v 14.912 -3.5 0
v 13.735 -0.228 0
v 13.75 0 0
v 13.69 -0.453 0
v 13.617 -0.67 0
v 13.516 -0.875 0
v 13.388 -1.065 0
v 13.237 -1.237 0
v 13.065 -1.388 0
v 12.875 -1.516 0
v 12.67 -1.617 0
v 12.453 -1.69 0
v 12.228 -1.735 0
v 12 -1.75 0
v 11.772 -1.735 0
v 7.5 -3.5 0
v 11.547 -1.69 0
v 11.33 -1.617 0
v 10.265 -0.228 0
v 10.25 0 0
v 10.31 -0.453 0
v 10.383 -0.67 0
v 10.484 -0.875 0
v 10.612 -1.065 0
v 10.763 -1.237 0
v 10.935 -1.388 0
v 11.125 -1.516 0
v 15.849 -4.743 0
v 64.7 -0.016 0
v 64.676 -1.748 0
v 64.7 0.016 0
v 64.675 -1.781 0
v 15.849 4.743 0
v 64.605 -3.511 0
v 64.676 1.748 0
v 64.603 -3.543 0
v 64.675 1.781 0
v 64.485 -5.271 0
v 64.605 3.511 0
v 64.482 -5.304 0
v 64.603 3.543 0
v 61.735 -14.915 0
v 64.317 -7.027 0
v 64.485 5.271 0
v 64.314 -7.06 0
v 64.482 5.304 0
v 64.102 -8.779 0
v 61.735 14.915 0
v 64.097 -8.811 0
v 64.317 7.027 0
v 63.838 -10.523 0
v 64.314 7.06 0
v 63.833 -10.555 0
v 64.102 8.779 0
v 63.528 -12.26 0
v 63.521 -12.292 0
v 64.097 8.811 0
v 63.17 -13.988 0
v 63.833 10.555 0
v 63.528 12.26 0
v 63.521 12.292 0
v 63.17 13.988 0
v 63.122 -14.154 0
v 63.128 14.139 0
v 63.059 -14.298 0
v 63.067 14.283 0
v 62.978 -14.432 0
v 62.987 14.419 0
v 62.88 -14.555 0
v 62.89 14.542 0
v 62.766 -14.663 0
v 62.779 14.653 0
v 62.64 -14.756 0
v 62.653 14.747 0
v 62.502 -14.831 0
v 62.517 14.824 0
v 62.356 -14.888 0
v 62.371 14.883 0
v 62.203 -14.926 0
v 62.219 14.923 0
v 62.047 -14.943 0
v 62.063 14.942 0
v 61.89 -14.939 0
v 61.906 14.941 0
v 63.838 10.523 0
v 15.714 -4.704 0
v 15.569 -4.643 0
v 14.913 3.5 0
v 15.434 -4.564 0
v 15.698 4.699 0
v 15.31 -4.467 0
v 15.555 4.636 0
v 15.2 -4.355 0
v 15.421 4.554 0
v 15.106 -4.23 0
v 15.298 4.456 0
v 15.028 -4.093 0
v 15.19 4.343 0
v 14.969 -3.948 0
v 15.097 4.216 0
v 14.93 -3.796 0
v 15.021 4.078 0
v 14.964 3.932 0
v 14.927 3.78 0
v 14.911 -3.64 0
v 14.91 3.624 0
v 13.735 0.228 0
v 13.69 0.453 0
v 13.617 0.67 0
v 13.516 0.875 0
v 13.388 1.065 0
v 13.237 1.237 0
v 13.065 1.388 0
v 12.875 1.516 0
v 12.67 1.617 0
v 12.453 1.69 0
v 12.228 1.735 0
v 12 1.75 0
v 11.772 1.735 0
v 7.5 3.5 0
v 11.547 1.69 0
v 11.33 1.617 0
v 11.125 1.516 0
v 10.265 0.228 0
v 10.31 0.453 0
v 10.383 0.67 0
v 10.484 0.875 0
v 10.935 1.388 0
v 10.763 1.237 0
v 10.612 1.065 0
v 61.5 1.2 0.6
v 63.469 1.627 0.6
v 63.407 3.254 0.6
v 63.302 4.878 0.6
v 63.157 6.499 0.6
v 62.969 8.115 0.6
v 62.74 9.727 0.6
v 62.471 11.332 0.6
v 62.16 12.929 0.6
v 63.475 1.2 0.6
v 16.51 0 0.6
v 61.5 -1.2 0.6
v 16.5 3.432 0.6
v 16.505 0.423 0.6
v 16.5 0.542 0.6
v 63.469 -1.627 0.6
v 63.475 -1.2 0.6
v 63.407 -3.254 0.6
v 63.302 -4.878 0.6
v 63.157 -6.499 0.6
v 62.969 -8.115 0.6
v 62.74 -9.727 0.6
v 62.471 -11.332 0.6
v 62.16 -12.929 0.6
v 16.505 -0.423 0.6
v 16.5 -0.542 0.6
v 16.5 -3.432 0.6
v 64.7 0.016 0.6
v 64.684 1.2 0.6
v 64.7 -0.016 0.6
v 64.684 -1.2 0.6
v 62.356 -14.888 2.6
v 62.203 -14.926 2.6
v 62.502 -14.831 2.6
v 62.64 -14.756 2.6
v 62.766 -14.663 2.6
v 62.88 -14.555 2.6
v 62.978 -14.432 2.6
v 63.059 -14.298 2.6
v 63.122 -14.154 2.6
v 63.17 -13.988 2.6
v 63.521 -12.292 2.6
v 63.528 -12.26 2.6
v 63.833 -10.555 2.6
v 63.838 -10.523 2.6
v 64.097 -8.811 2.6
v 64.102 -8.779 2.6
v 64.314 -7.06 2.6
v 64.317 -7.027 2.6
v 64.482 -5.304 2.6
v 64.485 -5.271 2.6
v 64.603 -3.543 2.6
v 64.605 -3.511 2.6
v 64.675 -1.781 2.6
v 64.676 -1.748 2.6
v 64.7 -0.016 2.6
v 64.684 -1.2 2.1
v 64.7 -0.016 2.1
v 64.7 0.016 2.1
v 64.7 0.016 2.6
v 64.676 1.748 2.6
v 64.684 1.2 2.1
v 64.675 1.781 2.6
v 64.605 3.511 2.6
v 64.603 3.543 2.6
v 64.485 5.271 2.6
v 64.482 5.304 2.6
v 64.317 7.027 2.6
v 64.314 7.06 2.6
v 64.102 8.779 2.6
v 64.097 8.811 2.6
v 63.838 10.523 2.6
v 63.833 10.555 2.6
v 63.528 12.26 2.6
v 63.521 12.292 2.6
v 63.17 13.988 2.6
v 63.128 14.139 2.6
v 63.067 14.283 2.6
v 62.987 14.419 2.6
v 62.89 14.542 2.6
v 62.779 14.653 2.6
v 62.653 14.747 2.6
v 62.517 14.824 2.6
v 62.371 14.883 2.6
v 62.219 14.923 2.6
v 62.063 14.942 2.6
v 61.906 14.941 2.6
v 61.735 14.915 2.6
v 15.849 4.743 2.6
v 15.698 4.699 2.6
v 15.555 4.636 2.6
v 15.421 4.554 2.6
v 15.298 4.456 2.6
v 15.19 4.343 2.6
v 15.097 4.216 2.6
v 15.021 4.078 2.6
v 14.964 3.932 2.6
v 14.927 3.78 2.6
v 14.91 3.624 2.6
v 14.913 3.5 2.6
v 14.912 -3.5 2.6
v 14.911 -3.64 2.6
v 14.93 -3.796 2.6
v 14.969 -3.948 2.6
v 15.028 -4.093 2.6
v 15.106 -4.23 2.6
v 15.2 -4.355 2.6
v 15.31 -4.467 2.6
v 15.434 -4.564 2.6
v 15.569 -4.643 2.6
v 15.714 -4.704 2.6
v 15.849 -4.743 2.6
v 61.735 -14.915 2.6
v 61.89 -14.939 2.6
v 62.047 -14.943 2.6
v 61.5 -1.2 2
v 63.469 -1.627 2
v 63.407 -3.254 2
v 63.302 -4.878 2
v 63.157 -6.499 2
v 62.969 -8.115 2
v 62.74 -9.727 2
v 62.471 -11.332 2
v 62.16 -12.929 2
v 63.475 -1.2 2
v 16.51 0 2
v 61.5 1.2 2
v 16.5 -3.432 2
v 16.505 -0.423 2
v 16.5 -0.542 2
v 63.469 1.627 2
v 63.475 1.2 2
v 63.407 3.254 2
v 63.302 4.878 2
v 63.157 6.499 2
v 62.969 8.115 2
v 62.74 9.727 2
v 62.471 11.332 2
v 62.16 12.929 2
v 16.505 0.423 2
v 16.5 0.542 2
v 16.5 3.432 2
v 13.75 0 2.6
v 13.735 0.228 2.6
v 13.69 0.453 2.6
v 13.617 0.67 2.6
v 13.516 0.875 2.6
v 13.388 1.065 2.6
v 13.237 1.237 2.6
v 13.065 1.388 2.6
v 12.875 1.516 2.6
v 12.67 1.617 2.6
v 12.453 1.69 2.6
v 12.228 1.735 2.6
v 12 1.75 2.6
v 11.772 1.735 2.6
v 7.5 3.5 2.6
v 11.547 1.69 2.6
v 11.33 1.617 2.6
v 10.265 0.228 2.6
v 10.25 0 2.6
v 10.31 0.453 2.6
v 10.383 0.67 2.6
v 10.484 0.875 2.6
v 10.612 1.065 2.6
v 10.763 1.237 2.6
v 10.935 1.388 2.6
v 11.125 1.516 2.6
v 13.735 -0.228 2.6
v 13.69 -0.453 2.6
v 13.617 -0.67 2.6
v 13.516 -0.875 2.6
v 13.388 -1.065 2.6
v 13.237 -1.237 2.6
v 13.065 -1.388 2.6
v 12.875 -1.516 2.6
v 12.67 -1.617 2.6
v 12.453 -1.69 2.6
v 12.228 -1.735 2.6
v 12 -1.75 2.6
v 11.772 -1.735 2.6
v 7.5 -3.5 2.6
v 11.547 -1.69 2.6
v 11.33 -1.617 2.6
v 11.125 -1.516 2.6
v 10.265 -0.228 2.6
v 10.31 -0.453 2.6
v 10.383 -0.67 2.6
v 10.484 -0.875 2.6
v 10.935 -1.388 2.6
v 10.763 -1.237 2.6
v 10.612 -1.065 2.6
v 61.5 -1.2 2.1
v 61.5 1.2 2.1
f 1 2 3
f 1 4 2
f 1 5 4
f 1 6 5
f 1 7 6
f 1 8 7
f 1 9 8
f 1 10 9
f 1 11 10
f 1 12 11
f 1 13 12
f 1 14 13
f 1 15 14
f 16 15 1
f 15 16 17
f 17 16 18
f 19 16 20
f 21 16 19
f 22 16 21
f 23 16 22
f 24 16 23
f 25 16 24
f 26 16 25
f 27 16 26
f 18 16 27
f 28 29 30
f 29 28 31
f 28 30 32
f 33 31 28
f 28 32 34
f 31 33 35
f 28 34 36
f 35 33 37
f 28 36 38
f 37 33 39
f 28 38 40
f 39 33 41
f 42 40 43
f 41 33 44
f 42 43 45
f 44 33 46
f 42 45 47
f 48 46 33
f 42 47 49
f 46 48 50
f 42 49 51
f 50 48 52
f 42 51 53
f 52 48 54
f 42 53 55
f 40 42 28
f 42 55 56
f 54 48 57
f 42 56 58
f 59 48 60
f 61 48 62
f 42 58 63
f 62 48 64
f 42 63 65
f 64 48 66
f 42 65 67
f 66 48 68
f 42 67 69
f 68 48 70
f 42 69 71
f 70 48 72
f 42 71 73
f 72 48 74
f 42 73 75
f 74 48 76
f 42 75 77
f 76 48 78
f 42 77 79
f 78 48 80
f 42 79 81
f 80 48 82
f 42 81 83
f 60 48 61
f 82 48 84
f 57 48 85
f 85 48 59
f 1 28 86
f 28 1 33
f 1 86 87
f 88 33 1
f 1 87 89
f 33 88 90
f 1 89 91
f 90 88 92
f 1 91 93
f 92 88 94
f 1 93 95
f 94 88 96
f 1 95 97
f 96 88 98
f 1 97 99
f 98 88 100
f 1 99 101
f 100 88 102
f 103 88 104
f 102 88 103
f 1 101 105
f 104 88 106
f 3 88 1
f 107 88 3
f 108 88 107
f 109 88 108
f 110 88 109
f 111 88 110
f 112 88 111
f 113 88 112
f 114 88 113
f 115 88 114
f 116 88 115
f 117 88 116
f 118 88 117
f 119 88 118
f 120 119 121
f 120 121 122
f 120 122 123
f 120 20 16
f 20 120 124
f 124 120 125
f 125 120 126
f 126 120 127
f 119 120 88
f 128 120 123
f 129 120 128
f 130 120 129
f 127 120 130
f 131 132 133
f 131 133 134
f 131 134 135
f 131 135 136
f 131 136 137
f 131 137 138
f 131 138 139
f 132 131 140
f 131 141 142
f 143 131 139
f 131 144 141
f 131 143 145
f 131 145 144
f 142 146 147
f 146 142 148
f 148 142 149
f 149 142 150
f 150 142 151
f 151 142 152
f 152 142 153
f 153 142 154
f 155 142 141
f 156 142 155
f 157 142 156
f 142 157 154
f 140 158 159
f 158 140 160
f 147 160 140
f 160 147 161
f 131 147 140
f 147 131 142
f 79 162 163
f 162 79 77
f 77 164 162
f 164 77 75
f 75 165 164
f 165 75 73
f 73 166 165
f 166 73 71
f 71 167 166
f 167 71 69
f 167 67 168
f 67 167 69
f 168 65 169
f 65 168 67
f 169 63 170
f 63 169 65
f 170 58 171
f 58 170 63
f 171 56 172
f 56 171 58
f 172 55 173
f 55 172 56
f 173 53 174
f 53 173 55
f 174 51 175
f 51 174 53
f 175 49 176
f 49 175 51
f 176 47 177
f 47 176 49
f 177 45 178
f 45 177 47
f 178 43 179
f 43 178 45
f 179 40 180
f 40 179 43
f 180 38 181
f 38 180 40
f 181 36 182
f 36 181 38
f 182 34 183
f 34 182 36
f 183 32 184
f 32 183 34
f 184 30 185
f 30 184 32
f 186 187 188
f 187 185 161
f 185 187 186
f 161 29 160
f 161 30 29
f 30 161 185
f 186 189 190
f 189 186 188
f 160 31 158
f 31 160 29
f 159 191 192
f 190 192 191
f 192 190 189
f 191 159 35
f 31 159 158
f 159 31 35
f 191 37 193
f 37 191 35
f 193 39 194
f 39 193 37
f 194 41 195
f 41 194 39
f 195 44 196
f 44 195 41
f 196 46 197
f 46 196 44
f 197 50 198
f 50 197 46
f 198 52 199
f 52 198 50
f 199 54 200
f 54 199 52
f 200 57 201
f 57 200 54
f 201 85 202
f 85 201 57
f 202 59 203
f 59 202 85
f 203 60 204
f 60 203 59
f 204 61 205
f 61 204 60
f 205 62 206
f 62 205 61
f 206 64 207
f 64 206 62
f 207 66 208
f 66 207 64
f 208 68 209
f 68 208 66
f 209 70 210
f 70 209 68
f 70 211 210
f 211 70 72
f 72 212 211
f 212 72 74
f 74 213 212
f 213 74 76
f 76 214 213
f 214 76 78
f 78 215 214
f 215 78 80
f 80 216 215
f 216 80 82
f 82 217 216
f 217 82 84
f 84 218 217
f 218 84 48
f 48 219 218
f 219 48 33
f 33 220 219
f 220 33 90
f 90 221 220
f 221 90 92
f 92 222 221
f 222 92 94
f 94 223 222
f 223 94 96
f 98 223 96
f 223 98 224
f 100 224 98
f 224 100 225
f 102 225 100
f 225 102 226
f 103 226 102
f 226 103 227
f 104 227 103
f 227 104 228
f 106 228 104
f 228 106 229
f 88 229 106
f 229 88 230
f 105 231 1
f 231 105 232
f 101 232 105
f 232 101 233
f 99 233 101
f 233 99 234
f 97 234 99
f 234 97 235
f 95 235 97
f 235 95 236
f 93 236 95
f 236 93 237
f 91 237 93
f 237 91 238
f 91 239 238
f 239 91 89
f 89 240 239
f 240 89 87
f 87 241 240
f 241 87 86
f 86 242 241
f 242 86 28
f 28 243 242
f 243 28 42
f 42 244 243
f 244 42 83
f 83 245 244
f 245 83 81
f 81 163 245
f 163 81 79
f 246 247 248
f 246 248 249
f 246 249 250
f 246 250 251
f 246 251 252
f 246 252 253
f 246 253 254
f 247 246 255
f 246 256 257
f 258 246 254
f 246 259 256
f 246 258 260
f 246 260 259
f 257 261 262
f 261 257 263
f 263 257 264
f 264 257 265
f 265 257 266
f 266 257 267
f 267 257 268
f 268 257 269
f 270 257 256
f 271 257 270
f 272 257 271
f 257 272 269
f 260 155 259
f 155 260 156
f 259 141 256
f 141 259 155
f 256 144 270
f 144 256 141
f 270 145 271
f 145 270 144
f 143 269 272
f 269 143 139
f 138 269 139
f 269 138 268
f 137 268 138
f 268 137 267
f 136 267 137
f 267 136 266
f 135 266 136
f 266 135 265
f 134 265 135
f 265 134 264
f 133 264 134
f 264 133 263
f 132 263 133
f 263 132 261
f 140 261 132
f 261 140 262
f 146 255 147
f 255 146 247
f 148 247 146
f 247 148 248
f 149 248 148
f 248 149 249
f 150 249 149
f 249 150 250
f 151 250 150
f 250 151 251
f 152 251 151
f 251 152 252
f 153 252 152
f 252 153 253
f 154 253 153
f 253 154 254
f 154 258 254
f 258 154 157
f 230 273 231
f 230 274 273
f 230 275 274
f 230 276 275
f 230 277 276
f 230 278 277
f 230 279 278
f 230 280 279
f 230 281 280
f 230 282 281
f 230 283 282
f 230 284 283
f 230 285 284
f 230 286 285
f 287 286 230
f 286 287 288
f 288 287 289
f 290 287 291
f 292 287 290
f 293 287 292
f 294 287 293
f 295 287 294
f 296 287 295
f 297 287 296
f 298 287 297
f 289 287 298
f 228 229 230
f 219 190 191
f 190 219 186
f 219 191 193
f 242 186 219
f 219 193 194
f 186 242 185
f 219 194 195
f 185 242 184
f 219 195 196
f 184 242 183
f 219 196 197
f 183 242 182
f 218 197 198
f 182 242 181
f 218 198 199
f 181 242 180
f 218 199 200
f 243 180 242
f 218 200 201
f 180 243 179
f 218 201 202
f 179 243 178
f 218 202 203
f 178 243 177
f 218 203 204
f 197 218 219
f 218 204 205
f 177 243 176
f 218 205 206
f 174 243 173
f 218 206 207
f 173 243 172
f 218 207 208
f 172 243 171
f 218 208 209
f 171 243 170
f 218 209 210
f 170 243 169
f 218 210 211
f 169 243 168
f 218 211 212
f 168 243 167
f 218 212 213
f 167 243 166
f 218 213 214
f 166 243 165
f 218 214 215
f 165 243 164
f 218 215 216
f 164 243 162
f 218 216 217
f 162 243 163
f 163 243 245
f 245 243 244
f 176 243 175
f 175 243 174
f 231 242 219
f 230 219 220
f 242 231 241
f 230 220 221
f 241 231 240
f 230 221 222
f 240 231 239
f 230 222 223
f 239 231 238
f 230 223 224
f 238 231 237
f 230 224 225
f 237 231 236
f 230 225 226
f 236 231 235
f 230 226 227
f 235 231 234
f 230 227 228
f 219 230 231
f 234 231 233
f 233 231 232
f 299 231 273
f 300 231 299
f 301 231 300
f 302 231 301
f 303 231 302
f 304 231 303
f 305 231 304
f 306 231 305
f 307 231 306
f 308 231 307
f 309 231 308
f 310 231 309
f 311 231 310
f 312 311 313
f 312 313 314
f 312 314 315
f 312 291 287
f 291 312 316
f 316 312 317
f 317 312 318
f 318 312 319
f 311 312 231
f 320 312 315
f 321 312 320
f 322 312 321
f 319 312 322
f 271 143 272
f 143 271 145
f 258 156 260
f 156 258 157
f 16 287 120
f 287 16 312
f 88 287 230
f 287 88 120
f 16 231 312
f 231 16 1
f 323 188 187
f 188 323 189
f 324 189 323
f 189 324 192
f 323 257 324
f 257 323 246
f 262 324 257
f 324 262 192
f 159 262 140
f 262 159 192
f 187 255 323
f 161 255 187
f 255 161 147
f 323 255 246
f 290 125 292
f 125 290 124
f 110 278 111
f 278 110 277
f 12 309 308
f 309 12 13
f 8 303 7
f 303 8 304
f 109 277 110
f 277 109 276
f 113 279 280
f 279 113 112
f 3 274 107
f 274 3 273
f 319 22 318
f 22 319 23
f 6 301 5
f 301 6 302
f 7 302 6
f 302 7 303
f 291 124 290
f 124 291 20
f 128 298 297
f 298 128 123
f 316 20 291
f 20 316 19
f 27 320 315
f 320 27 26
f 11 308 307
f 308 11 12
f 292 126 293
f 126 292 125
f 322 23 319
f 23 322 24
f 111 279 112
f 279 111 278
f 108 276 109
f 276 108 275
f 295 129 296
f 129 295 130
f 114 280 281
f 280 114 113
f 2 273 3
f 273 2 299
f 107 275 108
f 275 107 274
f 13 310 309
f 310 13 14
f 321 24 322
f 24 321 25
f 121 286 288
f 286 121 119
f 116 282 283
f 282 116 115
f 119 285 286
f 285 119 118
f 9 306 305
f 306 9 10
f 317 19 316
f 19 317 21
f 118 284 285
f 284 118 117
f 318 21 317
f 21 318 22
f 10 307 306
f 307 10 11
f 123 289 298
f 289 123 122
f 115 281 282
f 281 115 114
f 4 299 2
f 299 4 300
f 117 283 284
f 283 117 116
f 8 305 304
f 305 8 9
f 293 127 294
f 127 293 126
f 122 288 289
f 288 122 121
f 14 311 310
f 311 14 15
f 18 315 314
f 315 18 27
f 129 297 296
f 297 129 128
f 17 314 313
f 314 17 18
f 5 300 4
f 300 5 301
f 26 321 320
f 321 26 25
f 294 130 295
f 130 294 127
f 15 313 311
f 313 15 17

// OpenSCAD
// file: parameters.scad
// =============================================================================
// Gen-AM Vernier flux-claw hyper — WOUND-AWARE (HARD GATE)
// Dual-rotor vernier: Rotor B +22.5° vs 12-slot stator; Ø5 flux claws
// =============================================================================

wire_awg            = 26;
wire_od             = 0.45;
turns               = 185;      // +10 vs Gen-AJ 175
fill                = 0.70;
layers_per_face     = 2;
wind_build_axial    = layers_per_face * wire_od * fill;   // 0.63 mm
wind_build_radial   = 3 * wire_od * fill;                 // 0.945 mm

coil_id_r           = 16.5;
coil_od_r           = 63.5;
span_deg            = 25.0;
former_web          = 1.40;     // thinner vs AJ 1.50
flange_t            = 0.60;
wall                = 1.2;
slot_w              = 2.4;
mount_hole          = 3.5;
tab_len             = 7.0;

former_bare_h       = former_web + 2 * flange_t;            // 2.60 mm
coil_envelope_h     = former_bare_h + 2 * wind_build_axial; // 3.86 mm

run_clear           = 0.50;
gap_spacer_h        = run_clear + wind_build_axial;         // 1.13 mm
m2m                 = coil_envelope_h + 2 * run_clear;      // 4.86 mm

coil_stations       = 12;
bay_r_in            = coil_id_r - 2.0 - wind_build_radial;
bay_r_out           = coil_od_r + 2.0 + wind_build_radial;
bay_span            = span_deg + 4.0;
bay_offset          = 2.0;
stator_thick        = former_bare_h;
stator_od           = 160.0;
shaft_clear_stator  = 34.0;
coil_mount_r        = 26.0;

large_pocket_d      = 20.3;
small_pocket_d      = 5.3;
pocket_h            = 5.2;
large_n             = 8;
R_large             = 40.5;     // closer to copper centroid vs AJ R=42
R_small_inner       = 26.0;
R_small_mid         = 40.5;
R_small_outer       = 56.0;
carrier_od          = 156.0;
carrier_thick       = 7.5;
hub_h               = 10.0;
hub_od              = 30.0;
rotor_b_offset_deg  = 22.5;     // vernier offset vs 12-slot stator

shaft_bore          = 8.35;
bearing_d           = 21.85;
bearing_h           = 7.2;
m3_clear            = 3.5;
bolt_r_inner        = 36.0;
bolt_n_inner        = 6;
flange_bolt_r       = 72.0;
flange_bolt_n       = 6;
brace_r             = 68.0;
brace_d             = 4.3;
brace_n             = 4;

spacer_pad_od       = 14.0;
spacer_pad_id       = m3_clear;
endbell_od          = 160.0;
endbell_thick       = 8.0;
endbell_shaft_clear = 10.0;

$fn = 64;
// main file
// Gen-AM pancake former — wind BEFORE assembly
include <parameters.scad>;
$fn = 48;

module sector_2d(r_in, r_out, ang) {
    polygon([
        for (a = [-ang/2 : ang/16 : ang/2]) [r_in*cos(a), r_in*sin(a)],
        for (a = [ang/2 : -ang/16 : -ang/2]) [r_out*cos(a), r_out*sin(a)]
    ]);
}
module flange() {
    linear_extrude(flange_t) offset(r=wall) sector_2d(coil_id_r, coil_od_r, span_deg);
}
difference() {
    union() {
        flange();
        translate([0, 0, flange_t])
            linear_extrude(former_web)
                difference() {
                    offset(r=wall) sector_2d(coil_id_r, coil_od_r, span_deg);
                    sector_2d(coil_id_r + 0.01, coil_od_r - 0.01, span_deg - 1.5);
                }
        translate([0, 0, flange_t + former_web]) flange();
        translate([coil_id_r - tab_len - 2, -3.5, 0])
            cube([tab_len + 2, 7, former_bare_h]);
    }
    translate([coil_od_r - 2, -slot_w/2, flange_t])
        cube([wall + 4, slot_w, former_web + 0.1]);
    translate([coil_id_r - tab_len/2 - 1, 0, -0.1])
        cylinder(d=mount_hole, h=former_bare_h + 1);
}
